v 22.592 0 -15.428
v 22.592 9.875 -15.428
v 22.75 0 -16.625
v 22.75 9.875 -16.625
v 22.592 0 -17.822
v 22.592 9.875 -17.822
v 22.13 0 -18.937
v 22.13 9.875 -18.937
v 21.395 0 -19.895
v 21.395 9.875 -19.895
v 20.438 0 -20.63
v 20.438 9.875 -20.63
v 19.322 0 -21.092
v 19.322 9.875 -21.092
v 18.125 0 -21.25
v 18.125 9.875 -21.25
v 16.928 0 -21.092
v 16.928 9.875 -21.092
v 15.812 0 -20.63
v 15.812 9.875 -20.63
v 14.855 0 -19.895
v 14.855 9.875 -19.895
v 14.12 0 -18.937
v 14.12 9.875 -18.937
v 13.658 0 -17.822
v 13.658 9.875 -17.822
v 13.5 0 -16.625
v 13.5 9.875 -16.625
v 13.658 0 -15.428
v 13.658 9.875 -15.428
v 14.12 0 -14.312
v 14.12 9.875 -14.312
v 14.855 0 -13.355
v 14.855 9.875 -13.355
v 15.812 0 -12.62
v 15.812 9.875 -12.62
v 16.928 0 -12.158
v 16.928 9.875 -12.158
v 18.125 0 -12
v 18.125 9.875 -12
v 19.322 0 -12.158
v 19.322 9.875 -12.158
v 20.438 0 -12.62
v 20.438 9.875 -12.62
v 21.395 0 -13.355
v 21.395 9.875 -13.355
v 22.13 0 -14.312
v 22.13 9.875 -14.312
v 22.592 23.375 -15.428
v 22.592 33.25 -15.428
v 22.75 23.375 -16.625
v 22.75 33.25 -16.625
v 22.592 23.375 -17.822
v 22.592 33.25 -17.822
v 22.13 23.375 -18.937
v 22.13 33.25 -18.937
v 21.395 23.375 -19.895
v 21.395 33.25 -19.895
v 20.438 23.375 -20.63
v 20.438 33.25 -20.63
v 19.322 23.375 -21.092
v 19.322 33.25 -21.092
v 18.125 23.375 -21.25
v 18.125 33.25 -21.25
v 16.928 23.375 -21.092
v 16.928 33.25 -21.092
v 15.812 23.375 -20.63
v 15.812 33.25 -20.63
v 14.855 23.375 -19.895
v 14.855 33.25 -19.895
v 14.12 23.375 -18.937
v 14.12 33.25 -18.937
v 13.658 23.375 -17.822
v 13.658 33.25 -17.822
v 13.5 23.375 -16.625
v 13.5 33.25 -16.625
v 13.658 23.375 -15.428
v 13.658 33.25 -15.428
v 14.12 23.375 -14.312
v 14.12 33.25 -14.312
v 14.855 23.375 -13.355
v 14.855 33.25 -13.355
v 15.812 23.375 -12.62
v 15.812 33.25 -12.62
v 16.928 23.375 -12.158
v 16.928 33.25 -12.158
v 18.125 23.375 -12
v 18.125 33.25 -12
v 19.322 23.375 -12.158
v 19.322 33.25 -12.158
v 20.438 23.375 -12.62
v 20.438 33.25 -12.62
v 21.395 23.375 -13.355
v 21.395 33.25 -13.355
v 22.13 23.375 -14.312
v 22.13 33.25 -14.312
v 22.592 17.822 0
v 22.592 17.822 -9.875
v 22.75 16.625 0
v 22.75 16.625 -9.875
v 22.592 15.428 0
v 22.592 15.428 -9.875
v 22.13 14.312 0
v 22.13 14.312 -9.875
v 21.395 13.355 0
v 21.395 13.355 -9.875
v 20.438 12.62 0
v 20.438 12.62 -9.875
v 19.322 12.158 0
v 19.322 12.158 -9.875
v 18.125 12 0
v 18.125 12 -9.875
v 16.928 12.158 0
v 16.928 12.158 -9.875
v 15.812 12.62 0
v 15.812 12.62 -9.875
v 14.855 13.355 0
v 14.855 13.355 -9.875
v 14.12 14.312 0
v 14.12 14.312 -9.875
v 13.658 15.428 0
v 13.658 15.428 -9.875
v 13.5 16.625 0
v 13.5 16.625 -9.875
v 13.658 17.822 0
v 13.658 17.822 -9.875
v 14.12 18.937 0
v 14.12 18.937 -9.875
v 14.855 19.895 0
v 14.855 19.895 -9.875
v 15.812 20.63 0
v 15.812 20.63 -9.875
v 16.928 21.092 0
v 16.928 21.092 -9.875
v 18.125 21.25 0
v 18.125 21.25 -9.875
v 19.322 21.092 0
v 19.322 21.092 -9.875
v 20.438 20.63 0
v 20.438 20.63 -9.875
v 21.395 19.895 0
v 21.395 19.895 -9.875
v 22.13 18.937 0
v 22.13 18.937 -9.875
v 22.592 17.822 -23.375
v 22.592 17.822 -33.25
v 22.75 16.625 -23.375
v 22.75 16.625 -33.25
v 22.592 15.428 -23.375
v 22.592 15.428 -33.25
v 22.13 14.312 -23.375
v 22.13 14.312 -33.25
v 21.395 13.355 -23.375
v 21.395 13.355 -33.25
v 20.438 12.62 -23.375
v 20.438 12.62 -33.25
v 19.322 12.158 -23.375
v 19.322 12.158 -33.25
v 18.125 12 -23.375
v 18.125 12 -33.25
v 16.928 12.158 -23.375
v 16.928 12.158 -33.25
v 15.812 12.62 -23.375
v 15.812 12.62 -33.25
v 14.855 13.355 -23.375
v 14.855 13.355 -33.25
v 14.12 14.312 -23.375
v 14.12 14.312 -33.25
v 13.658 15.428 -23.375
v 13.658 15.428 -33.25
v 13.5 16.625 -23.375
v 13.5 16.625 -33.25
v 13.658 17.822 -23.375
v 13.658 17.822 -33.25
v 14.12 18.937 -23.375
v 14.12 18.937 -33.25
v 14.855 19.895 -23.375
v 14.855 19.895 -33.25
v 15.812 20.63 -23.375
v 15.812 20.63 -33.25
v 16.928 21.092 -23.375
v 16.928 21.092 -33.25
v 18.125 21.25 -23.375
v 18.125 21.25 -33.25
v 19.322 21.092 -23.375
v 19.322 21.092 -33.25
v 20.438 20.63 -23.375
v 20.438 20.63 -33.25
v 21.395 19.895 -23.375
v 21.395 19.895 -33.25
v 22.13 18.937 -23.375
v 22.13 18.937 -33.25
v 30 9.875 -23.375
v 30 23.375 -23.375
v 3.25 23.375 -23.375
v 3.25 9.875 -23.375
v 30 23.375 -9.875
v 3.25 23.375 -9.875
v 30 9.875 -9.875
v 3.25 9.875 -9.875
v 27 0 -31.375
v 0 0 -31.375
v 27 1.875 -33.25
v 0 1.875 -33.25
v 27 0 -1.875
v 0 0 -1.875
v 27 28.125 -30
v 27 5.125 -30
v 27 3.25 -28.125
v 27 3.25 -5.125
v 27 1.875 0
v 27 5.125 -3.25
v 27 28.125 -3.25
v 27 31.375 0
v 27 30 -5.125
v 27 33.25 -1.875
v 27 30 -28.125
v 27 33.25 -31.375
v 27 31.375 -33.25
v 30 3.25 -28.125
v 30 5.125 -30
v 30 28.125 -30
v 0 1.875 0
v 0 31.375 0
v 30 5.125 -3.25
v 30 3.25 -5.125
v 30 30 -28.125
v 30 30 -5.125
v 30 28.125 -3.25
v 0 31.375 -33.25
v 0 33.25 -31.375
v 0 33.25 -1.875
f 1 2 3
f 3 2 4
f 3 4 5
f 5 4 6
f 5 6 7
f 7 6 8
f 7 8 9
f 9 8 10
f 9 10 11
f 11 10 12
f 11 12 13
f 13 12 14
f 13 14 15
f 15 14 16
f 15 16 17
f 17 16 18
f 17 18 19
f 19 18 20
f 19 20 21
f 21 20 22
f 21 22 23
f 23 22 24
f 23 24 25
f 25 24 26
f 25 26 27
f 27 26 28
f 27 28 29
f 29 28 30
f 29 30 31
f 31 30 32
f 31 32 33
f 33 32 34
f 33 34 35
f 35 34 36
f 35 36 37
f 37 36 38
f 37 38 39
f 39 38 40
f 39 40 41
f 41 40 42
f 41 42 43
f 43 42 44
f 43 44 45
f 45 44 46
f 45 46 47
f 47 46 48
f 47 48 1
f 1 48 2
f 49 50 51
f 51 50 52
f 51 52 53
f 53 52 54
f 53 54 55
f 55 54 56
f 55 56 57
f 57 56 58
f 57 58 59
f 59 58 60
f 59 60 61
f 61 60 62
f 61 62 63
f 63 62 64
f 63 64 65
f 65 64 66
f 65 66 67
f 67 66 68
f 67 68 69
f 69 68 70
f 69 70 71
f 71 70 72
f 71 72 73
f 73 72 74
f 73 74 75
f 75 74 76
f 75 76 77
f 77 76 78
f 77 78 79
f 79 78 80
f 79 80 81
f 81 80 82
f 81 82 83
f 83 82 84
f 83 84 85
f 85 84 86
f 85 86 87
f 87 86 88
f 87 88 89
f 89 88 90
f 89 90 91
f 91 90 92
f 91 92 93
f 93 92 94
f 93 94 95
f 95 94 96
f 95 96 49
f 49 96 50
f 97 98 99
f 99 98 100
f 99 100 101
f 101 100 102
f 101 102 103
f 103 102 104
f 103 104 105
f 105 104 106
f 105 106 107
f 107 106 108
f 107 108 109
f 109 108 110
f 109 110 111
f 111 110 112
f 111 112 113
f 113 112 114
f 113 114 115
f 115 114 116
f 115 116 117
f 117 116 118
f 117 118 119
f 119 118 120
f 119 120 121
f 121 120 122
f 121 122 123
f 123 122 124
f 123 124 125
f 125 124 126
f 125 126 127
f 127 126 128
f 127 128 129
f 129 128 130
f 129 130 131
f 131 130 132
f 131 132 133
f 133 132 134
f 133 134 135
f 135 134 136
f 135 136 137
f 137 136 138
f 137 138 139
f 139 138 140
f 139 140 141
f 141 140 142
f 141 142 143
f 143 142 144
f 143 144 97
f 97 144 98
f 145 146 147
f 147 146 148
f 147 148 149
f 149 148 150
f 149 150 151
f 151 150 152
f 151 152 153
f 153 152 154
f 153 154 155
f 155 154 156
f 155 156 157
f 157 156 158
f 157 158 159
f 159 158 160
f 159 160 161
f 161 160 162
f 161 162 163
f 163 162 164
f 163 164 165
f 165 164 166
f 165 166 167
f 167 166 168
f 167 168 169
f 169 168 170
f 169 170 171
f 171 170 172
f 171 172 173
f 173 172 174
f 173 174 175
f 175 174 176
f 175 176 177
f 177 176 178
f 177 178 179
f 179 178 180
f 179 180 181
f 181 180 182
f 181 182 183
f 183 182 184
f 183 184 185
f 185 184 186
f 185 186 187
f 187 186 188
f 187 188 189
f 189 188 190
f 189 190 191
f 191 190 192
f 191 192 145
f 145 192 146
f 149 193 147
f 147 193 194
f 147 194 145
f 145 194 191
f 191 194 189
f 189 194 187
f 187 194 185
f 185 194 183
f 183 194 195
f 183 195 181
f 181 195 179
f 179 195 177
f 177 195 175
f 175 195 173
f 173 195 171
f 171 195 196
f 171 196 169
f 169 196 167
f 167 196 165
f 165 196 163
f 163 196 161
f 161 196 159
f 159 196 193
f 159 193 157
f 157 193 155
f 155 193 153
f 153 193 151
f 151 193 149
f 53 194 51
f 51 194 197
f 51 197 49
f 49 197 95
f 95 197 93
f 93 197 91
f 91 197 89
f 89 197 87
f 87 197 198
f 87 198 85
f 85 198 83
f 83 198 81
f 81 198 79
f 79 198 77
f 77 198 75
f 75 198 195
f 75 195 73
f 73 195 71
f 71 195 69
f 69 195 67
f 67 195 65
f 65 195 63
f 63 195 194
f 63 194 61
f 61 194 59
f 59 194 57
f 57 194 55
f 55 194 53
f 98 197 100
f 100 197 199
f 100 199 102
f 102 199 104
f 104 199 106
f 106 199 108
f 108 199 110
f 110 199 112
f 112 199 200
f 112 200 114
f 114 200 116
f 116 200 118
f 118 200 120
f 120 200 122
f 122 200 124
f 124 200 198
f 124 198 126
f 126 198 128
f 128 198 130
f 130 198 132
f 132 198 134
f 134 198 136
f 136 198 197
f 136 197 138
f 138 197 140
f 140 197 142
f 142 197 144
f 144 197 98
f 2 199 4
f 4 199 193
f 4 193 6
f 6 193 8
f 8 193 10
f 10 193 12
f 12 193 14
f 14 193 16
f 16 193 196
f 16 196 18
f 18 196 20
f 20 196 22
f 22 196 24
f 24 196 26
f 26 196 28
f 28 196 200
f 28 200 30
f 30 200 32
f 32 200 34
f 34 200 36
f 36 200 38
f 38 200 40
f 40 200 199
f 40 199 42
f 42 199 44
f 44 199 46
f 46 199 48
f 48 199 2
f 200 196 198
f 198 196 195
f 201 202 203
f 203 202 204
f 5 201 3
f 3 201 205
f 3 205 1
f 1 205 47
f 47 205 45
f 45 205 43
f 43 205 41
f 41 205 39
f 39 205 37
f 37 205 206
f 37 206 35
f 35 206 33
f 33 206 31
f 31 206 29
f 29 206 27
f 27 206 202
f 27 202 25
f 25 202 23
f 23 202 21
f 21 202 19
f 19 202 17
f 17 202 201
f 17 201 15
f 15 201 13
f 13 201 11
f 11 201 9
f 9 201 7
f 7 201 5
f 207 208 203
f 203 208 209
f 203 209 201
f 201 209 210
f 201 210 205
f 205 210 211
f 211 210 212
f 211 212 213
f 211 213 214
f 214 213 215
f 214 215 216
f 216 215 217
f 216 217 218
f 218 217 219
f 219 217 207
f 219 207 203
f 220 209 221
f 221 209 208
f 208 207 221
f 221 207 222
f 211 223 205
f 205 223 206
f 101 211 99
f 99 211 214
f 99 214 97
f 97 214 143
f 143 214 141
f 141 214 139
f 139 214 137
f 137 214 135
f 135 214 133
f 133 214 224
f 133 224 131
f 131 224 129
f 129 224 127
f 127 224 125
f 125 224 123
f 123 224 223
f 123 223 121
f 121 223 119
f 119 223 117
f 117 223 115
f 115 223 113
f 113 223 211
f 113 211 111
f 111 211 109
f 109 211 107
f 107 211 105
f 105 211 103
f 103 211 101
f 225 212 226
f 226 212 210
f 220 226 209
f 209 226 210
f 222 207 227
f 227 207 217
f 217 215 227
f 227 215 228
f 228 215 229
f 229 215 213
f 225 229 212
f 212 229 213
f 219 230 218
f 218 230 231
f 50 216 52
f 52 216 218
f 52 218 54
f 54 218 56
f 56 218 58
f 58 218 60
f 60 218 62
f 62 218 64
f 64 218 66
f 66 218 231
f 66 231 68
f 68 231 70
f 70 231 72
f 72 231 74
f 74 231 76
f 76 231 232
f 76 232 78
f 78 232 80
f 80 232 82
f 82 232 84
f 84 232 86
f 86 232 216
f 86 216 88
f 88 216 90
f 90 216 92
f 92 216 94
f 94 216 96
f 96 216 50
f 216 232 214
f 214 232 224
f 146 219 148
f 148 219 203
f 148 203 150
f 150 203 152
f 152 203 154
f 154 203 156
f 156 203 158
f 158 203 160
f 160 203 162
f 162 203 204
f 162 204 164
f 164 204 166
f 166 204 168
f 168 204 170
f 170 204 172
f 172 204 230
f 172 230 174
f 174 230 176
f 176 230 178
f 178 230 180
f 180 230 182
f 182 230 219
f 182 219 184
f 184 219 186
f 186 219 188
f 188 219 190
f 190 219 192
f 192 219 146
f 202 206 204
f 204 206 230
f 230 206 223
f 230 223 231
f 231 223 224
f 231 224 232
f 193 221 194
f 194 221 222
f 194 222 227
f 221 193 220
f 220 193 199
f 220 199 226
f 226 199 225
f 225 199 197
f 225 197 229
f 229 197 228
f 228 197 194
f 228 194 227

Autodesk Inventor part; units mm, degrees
ref_plane "YZ Plane" through (0, 0, 0) normal (1, 0, 0) x (0, 1, 0)
ref_plane "XZ Plane" through (0, 0, 0) normal (0, 1, 0) x (-1, 0, 0)
ref_plane "XY Plane" through (0, 0, 0) normal (0, 0, 1) x (1, 0, 0)
sketch "Sketch1" plane through (0, 0, 0) normal (1, 0, 0) x (0, 1, 0)
  line L0 (0, 0) -> (33.25, 0)
  line L1 (33.25, 0) -> (33.25, -33.25)
  line L2 (33.25, -33.25) -> (0, -33.25)
  line L3 (0, -33.25) -> (0, 0)
  dimension "d0" = 33.25
  dimension "d1" = 33.25
extrude "Extrusion1" add sketch "Sketch1" along normal blind 30
sketch "Sketch2" plane through (30, 0, 0) normal (1, 0, 0) x (0, 0, -1)
  line L0 (3.25, 3.25) -> (30, 3.25)
  line L1 (30, 3.25) -> (30, 30)
  line L2 (30, 30) -> (3.25, 30)
  line L3 (3.25, 30) -> (3.25, 3.25)
  point P0 (0, 0)
  dimension "d4" = 26.75
  dimension "d5" = 26.75
sketch "Sketch3" plane through (30, 0, 0) normal (1, 0, 0) x (0, 0, -1)
  line L0 (33.25, 0) -> (33.25, 33.25) projected
  line L1 (0, 0) -> (33.25, 0)
  line L2 (33.25, 0) -> (33.25, 33.25)
  line L3 (33.25, 33.25) -> (0, 33.25)
  line L4 (0, 33.25) -> (0, 0)
sketch "Sketch4" plane through (30, 0, 0) normal (1, 0, 0) x (0, 0, -1)
  line L0 (3.25, 3.25) -> (30, 3.25)
  line L1 (30, 3.25) -> (30, 30)
  line L2 (30, 30) -> (3.25, 30)
  line L3 (3.25, 30) -> (3.25, 3.25)
  line L4 (0, 33.25) -> (0, 0) projected
  line L5 (33.25, 0) -> (33.25, 33.25) projected
  line L6 (0, 0) -> (33.25, 0)
  line L7 (33.25, 0) -> (33.25, 33.25)
  line L8 (33.25, 33.25) -> (0, 33.25)
  line L9 (0, 33.25) -> (0, 0)
  dimension "d6" = 26.75
  dimension "d7" = 26.75
extrude "Extrusion2" cut sketch "Sketch4" against normal blind 3
chamfer "Chamfer1" distance 1.875 angle 45 8 edges at (13.5, 33.25, 0) (13.5, 33.25, -33.25) (28.5, 30, -3.25) (28.5, 30, -30) (28.5, 3.25, -3.25) (13.5, 0, 0) (28.5, 3.25, -30) (13.5, 0, -33.25)
sketch "Sketch5" plane through (30, 0, 0) normal (1, 0, 0) x (0, 0, -1)
  line L0 (9.875, 9.875) -> (23.375, 9.875)
  line L1 (23.375, 9.875) -> (23.375, 23.375)
  line L2 (23.375, 23.375) -> (9.875, 23.375)
  line L3 (9.875, 23.375) -> (9.875, 9.875)
  line L4 (28.125, 30) -> (5.125, 30) projected
  line L5 (30, 5.125) -> (30, 28.125) projected
  line L6 (3.25, 3.25) -> (30, 3.25)
  line L7 (30, 3.25) -> (30, 30)
  line L8 (30, 30) -> (3.25, 30)
  line L9 (3.25, 30) -> (3.25, 3.25)
  point P0 (0, 0)
  dimension "d13" = 13.5
  dimension "d14" = 13.5
  dimension "d15" = 6.625
  dimension "d16" = 6.625
extrude "Extrusion3" cut sketch "Sketch5" against normal blind 26.75 contours L3 L2 L1 L0
sketch "Sketch6" plane through (0, 1.875, 0) normal (0, 0, 1) x (1, 0, 0)
  point P0 (0, -1.875)
sketch "Sketch7" plane through (0, 1.875, 0) normal (0, 0, 1) x (1, 0, 0)
  circle A0 centre (18.125, 14.75) radius 4.625
  point P0 (0, -1.875)
  dimension "d19" = 9.25
extrude "Extrusion4" cut sketch "Sketch7" against normal blind 33.25
sketch "Sketch8" plane through (0, 0, -31.375) normal (0, -1, 0) x (1, 0, 0)
  circle A0 centre (18.125, 14.75) radius 4.625
  point P0 (0, 31.375)
  dimension "d22" = 9.25
extrude "Extrusion5" cut sketch "Sketch8" against normal blind 33.25
thread "Thread1" size "M10x1.5" class "6H" standard "ANSI Metric M Profile" full length
thread "Thread2" size "M10x1.5" class "6H" standard "ANSI Metric M Profile" full length
thread "Thread3" size "M10x1.5" class "6H" standard "ANSI Metric M Profile" full length
thread "Thread4" size "M10x1.5" class "6H" standard "ANSI Metric M Profile" full length
properties part number "cuvette holder blockBASE"
